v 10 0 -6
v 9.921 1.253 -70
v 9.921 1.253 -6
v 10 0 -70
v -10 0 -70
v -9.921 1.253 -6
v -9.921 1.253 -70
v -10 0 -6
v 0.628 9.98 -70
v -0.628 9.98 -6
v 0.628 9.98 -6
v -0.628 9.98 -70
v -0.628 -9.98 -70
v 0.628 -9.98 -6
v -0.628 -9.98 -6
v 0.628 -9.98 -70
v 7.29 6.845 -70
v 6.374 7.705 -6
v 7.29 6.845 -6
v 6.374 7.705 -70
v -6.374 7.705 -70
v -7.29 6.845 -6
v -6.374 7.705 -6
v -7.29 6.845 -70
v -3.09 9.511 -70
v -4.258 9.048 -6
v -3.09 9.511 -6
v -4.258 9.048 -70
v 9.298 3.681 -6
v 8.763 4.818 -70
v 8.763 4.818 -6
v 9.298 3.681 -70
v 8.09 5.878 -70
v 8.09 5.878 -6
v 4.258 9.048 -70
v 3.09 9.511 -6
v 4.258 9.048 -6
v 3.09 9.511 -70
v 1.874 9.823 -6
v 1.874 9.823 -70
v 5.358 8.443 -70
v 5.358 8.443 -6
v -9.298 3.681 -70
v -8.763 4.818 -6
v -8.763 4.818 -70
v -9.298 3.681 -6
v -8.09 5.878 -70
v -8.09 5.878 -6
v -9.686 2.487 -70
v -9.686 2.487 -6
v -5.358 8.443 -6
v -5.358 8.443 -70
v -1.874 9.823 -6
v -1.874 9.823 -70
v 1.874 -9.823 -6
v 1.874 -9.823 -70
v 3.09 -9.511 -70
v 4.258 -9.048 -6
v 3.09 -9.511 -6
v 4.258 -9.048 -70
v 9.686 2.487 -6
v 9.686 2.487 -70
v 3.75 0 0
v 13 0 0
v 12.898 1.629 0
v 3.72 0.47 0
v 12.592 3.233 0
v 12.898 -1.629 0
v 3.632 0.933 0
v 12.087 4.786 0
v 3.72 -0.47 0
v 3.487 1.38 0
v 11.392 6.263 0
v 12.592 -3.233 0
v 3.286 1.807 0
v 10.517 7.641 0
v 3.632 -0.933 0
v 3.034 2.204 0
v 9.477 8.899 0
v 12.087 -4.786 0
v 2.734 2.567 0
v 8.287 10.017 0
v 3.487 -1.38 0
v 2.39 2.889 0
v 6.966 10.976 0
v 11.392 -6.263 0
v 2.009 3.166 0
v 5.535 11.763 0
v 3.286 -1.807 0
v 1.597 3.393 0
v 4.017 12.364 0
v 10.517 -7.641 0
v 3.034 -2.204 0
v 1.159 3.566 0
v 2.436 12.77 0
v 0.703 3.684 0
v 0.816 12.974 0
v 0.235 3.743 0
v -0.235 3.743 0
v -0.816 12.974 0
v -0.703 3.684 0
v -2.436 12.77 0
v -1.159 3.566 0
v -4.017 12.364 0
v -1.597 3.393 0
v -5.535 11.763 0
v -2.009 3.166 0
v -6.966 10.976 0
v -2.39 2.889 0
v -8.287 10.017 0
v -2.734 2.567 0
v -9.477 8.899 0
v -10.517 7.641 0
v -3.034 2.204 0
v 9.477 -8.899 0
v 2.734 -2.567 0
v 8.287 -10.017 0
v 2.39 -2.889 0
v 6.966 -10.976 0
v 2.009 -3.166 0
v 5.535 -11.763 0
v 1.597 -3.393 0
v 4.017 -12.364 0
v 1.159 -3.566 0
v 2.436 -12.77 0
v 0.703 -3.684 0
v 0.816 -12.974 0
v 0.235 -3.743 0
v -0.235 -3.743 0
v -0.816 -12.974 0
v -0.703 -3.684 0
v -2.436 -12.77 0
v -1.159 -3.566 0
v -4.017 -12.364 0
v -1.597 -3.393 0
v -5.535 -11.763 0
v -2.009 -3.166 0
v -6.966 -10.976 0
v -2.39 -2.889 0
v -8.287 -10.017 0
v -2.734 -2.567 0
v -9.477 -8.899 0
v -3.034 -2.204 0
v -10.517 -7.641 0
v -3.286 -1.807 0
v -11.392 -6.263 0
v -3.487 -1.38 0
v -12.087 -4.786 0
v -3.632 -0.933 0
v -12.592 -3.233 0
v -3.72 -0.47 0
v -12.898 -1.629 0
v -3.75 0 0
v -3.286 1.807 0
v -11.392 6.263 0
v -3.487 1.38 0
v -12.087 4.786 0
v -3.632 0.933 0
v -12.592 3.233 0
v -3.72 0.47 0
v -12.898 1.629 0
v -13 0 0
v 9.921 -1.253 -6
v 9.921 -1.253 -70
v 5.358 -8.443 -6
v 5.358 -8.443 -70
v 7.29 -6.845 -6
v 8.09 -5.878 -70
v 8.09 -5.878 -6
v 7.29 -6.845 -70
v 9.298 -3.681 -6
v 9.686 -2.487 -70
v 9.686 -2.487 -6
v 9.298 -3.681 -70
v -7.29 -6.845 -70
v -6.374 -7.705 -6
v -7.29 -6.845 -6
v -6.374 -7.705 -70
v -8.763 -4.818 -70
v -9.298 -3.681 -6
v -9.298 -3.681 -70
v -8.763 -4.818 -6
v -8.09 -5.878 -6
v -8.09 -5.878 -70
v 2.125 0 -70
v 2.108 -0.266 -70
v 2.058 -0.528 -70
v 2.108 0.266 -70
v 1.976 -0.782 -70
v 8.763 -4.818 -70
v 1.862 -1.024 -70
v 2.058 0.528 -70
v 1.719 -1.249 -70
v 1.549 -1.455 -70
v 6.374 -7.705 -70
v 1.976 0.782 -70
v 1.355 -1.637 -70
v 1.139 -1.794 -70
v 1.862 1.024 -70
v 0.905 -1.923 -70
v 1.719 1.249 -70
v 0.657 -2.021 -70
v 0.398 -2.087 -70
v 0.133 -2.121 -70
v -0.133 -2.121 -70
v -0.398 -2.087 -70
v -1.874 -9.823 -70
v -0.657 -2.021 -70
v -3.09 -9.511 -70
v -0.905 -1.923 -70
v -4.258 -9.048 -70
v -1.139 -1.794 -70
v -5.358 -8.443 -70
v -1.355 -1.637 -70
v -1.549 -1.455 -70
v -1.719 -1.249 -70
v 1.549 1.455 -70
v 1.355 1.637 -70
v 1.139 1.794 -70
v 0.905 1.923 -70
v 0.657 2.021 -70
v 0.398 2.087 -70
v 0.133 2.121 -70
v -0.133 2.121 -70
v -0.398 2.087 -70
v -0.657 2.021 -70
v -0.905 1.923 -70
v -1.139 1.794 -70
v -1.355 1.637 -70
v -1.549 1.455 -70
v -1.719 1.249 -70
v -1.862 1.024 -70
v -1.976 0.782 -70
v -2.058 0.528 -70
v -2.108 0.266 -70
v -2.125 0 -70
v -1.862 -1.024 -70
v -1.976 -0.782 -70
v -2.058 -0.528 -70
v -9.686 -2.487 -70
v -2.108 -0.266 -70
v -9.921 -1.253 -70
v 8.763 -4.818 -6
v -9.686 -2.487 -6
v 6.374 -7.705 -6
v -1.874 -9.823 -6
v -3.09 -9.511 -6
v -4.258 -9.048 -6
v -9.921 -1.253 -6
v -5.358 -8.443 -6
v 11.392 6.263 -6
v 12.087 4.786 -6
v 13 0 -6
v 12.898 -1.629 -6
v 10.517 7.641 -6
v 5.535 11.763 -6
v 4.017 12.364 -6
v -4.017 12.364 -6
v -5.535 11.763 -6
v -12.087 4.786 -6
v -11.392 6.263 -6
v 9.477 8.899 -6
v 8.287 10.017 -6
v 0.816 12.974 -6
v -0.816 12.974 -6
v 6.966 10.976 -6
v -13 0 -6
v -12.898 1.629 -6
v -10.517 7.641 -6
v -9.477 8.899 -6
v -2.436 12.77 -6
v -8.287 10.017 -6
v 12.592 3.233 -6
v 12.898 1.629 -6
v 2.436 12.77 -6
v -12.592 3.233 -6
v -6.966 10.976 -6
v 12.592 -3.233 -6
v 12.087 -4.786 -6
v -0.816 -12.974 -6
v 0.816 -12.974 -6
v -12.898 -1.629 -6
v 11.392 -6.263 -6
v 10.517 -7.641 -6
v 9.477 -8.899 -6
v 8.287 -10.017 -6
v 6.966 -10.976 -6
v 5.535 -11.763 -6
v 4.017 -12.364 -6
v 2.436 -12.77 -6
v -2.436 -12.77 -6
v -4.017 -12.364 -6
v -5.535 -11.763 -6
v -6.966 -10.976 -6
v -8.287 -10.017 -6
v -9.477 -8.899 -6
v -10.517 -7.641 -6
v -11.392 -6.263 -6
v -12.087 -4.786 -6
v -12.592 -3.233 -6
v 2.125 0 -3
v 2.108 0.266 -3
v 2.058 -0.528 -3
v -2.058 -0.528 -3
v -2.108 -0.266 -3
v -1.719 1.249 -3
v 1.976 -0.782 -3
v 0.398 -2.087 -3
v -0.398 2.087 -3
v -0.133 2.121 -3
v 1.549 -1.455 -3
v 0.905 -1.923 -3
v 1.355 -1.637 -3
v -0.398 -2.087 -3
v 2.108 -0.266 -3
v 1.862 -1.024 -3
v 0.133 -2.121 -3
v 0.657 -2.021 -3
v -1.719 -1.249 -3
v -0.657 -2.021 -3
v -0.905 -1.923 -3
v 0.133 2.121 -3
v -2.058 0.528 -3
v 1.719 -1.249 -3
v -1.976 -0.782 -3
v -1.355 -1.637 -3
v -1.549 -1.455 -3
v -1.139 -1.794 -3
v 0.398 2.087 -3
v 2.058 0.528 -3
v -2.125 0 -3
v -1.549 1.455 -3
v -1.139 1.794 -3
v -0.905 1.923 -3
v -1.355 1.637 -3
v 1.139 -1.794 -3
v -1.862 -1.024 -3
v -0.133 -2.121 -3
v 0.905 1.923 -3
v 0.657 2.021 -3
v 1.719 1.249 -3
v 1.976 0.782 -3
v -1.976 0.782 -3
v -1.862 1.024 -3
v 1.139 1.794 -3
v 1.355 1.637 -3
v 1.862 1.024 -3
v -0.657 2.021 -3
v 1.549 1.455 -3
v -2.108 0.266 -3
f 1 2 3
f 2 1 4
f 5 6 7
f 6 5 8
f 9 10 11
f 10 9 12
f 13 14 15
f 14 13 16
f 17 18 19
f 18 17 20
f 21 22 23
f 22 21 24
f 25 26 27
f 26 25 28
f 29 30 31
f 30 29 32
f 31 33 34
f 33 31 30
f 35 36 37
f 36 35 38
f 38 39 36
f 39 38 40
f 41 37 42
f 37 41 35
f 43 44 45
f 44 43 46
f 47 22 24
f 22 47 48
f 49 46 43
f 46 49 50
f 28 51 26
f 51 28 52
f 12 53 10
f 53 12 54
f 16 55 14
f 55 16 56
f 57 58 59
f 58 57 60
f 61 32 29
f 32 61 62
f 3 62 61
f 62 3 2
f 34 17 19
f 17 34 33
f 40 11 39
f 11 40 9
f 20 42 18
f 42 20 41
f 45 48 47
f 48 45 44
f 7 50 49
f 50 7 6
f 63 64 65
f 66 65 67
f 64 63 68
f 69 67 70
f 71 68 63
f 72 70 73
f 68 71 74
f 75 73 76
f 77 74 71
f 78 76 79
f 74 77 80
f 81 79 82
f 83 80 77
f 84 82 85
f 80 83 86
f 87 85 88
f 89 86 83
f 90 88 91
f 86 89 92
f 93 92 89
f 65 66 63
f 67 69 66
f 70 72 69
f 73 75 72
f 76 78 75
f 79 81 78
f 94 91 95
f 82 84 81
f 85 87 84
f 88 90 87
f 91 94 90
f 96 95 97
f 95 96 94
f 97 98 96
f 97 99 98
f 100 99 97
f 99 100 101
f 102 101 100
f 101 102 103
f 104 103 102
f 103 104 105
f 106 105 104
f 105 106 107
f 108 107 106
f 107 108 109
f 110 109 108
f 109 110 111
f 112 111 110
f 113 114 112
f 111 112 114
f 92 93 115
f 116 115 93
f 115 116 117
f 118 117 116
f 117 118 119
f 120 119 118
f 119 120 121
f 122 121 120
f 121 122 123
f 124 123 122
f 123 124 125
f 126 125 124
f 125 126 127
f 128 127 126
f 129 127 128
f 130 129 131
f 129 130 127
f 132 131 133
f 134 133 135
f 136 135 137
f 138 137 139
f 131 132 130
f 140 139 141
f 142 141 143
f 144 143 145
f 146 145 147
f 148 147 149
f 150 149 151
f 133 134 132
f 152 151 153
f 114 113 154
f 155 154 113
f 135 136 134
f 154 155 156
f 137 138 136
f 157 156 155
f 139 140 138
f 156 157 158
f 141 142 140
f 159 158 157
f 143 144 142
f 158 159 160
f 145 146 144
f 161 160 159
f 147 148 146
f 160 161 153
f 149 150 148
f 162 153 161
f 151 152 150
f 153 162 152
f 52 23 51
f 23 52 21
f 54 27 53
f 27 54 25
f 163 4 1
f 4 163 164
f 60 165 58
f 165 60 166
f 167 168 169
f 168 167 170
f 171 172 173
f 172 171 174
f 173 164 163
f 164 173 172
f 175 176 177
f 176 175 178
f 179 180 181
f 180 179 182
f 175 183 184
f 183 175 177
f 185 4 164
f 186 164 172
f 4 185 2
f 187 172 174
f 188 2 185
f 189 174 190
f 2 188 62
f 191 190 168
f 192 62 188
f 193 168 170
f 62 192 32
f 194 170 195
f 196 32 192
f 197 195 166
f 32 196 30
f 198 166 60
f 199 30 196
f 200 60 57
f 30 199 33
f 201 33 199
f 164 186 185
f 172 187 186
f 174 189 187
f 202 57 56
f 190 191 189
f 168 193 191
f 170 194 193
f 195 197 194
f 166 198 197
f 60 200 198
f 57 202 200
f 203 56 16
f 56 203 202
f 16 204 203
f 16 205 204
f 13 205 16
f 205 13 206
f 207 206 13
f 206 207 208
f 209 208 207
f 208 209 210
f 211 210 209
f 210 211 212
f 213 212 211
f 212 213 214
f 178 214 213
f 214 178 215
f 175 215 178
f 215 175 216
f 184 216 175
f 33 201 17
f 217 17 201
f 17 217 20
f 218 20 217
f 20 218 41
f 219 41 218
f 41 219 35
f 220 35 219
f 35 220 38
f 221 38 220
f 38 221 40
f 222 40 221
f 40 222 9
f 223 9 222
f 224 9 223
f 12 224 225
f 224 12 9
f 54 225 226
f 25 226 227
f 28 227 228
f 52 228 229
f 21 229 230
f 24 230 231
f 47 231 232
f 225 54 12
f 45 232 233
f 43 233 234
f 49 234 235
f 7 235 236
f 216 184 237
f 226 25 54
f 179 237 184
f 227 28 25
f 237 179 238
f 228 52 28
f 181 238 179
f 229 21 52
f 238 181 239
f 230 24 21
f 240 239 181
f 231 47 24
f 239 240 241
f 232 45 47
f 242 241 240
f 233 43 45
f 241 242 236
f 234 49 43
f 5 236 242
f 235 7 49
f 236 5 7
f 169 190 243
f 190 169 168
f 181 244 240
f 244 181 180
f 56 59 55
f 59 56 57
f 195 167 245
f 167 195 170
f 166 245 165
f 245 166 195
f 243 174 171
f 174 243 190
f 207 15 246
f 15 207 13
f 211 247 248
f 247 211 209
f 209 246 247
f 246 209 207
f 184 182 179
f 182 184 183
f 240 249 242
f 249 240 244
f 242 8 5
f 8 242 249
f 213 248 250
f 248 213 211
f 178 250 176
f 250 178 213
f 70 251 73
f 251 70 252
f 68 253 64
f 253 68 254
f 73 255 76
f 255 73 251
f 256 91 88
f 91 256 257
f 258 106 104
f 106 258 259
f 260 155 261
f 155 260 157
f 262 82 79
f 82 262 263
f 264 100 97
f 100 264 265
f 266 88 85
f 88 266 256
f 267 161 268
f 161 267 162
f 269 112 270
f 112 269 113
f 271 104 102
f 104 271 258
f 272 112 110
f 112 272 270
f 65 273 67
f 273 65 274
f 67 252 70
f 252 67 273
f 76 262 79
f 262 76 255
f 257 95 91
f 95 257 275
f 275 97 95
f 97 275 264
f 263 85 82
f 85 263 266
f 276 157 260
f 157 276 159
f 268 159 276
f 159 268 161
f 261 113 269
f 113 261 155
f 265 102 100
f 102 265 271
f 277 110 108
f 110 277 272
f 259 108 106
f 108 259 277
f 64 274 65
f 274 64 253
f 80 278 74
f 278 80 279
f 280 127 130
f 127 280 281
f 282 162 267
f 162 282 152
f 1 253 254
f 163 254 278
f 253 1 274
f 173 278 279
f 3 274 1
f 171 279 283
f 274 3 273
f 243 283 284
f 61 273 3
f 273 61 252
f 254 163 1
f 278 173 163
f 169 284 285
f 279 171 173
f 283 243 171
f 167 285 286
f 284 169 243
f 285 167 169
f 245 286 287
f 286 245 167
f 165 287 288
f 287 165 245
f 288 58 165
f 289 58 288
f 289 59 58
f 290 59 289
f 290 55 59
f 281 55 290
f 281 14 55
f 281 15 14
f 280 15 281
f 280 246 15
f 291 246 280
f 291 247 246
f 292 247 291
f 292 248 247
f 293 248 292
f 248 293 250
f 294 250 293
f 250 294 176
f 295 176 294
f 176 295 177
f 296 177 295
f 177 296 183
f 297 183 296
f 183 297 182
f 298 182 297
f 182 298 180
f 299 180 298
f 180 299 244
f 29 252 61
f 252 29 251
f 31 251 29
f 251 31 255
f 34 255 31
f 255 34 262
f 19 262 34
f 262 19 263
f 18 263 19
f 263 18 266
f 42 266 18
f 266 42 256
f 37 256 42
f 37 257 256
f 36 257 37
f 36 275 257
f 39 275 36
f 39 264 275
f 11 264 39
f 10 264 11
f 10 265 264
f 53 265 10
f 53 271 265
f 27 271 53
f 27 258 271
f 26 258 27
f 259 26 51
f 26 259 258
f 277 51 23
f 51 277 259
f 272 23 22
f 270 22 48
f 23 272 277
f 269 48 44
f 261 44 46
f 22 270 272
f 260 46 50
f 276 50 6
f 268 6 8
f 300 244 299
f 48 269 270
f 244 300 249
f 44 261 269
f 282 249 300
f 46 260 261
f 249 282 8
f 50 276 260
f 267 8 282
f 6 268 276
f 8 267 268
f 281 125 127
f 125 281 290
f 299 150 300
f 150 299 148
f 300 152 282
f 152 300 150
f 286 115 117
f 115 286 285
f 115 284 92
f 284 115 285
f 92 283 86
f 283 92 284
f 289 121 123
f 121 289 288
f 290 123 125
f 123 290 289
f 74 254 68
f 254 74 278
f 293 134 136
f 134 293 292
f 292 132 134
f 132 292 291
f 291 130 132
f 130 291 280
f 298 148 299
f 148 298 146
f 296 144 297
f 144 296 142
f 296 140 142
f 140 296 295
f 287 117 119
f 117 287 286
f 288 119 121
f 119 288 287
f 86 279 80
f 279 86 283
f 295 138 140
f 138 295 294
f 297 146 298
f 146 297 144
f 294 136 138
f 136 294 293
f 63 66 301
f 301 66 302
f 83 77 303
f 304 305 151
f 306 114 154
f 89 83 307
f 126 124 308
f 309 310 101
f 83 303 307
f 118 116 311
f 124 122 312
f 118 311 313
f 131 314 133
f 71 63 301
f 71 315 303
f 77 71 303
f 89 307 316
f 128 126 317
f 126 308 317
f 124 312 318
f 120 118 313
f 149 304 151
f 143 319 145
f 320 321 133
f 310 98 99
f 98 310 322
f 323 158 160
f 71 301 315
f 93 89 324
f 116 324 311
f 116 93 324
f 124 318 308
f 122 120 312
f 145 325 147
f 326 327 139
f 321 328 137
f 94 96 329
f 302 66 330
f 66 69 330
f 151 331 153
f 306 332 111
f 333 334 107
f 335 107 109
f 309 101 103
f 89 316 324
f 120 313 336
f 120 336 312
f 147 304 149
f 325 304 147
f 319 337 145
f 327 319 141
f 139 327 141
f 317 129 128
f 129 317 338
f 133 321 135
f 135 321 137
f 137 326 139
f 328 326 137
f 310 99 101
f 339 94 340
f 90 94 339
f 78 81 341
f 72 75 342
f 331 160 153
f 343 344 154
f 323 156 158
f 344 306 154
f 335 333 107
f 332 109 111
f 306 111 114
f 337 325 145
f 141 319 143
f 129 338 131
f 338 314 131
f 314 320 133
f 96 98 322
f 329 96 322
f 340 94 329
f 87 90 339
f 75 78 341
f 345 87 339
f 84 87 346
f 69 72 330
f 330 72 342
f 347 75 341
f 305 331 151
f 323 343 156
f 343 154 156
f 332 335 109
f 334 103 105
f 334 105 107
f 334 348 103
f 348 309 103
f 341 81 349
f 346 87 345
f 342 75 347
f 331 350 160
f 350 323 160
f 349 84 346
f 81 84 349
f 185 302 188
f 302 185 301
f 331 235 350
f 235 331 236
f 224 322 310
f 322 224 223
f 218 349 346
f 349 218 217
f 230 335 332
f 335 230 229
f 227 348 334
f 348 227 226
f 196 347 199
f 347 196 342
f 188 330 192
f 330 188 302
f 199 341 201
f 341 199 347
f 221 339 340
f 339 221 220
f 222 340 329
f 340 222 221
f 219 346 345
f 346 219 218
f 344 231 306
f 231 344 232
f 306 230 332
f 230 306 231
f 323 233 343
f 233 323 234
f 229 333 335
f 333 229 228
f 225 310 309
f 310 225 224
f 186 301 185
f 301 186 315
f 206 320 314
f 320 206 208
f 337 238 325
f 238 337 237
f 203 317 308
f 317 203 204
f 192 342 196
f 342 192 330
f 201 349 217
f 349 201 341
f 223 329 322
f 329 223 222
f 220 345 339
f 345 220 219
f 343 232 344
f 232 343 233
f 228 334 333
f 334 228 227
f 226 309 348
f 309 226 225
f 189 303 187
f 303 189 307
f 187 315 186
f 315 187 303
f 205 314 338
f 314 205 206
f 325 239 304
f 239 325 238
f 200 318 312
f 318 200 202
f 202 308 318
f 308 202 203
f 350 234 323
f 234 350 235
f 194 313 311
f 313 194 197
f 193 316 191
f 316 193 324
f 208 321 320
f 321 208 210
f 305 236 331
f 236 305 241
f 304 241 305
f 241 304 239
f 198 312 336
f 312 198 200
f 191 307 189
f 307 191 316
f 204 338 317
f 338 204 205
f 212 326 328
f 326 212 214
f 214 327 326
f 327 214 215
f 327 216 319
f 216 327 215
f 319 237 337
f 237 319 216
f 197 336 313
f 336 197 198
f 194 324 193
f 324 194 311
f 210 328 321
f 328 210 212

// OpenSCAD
$fn = 50;


difference() {
	union() {
		translate(v = [0, 0, -70.0000000000]) {
			cylinder(h = 70, r = 10.0000000000);
		}
		translate(v = [0, 0, -6.0000000000]) {
			cylinder(h = 6, r = 13.0000000000);
		}
	}
	union() {
		translate(v = [0, 0, 0]) {
			rotate(a = [0, 0, 0]) {
				difference() {
					union() {
						#translate(v = [0, 0, -70.0000000000]) {
							cylinder(h = 70, r = 2.0000000000);
						}
						#translate(v = [0, 0, -3]) {
							cylinder(h = 3, r = 10.0000000000, r1 = 2.1250000000, r2 = 3.7500000000);
						}
						#translate(v = [0, 0, -70.0000000000]) {
							cylinder(h = 70, r = 2.1250000000);
						}
						#translate(v = [0, 0, -70.0000000000]) {
							cylinder(h = 70, r = 2.0000000000);
						}
					}
					union();
				}
			}
		}
	}
}
